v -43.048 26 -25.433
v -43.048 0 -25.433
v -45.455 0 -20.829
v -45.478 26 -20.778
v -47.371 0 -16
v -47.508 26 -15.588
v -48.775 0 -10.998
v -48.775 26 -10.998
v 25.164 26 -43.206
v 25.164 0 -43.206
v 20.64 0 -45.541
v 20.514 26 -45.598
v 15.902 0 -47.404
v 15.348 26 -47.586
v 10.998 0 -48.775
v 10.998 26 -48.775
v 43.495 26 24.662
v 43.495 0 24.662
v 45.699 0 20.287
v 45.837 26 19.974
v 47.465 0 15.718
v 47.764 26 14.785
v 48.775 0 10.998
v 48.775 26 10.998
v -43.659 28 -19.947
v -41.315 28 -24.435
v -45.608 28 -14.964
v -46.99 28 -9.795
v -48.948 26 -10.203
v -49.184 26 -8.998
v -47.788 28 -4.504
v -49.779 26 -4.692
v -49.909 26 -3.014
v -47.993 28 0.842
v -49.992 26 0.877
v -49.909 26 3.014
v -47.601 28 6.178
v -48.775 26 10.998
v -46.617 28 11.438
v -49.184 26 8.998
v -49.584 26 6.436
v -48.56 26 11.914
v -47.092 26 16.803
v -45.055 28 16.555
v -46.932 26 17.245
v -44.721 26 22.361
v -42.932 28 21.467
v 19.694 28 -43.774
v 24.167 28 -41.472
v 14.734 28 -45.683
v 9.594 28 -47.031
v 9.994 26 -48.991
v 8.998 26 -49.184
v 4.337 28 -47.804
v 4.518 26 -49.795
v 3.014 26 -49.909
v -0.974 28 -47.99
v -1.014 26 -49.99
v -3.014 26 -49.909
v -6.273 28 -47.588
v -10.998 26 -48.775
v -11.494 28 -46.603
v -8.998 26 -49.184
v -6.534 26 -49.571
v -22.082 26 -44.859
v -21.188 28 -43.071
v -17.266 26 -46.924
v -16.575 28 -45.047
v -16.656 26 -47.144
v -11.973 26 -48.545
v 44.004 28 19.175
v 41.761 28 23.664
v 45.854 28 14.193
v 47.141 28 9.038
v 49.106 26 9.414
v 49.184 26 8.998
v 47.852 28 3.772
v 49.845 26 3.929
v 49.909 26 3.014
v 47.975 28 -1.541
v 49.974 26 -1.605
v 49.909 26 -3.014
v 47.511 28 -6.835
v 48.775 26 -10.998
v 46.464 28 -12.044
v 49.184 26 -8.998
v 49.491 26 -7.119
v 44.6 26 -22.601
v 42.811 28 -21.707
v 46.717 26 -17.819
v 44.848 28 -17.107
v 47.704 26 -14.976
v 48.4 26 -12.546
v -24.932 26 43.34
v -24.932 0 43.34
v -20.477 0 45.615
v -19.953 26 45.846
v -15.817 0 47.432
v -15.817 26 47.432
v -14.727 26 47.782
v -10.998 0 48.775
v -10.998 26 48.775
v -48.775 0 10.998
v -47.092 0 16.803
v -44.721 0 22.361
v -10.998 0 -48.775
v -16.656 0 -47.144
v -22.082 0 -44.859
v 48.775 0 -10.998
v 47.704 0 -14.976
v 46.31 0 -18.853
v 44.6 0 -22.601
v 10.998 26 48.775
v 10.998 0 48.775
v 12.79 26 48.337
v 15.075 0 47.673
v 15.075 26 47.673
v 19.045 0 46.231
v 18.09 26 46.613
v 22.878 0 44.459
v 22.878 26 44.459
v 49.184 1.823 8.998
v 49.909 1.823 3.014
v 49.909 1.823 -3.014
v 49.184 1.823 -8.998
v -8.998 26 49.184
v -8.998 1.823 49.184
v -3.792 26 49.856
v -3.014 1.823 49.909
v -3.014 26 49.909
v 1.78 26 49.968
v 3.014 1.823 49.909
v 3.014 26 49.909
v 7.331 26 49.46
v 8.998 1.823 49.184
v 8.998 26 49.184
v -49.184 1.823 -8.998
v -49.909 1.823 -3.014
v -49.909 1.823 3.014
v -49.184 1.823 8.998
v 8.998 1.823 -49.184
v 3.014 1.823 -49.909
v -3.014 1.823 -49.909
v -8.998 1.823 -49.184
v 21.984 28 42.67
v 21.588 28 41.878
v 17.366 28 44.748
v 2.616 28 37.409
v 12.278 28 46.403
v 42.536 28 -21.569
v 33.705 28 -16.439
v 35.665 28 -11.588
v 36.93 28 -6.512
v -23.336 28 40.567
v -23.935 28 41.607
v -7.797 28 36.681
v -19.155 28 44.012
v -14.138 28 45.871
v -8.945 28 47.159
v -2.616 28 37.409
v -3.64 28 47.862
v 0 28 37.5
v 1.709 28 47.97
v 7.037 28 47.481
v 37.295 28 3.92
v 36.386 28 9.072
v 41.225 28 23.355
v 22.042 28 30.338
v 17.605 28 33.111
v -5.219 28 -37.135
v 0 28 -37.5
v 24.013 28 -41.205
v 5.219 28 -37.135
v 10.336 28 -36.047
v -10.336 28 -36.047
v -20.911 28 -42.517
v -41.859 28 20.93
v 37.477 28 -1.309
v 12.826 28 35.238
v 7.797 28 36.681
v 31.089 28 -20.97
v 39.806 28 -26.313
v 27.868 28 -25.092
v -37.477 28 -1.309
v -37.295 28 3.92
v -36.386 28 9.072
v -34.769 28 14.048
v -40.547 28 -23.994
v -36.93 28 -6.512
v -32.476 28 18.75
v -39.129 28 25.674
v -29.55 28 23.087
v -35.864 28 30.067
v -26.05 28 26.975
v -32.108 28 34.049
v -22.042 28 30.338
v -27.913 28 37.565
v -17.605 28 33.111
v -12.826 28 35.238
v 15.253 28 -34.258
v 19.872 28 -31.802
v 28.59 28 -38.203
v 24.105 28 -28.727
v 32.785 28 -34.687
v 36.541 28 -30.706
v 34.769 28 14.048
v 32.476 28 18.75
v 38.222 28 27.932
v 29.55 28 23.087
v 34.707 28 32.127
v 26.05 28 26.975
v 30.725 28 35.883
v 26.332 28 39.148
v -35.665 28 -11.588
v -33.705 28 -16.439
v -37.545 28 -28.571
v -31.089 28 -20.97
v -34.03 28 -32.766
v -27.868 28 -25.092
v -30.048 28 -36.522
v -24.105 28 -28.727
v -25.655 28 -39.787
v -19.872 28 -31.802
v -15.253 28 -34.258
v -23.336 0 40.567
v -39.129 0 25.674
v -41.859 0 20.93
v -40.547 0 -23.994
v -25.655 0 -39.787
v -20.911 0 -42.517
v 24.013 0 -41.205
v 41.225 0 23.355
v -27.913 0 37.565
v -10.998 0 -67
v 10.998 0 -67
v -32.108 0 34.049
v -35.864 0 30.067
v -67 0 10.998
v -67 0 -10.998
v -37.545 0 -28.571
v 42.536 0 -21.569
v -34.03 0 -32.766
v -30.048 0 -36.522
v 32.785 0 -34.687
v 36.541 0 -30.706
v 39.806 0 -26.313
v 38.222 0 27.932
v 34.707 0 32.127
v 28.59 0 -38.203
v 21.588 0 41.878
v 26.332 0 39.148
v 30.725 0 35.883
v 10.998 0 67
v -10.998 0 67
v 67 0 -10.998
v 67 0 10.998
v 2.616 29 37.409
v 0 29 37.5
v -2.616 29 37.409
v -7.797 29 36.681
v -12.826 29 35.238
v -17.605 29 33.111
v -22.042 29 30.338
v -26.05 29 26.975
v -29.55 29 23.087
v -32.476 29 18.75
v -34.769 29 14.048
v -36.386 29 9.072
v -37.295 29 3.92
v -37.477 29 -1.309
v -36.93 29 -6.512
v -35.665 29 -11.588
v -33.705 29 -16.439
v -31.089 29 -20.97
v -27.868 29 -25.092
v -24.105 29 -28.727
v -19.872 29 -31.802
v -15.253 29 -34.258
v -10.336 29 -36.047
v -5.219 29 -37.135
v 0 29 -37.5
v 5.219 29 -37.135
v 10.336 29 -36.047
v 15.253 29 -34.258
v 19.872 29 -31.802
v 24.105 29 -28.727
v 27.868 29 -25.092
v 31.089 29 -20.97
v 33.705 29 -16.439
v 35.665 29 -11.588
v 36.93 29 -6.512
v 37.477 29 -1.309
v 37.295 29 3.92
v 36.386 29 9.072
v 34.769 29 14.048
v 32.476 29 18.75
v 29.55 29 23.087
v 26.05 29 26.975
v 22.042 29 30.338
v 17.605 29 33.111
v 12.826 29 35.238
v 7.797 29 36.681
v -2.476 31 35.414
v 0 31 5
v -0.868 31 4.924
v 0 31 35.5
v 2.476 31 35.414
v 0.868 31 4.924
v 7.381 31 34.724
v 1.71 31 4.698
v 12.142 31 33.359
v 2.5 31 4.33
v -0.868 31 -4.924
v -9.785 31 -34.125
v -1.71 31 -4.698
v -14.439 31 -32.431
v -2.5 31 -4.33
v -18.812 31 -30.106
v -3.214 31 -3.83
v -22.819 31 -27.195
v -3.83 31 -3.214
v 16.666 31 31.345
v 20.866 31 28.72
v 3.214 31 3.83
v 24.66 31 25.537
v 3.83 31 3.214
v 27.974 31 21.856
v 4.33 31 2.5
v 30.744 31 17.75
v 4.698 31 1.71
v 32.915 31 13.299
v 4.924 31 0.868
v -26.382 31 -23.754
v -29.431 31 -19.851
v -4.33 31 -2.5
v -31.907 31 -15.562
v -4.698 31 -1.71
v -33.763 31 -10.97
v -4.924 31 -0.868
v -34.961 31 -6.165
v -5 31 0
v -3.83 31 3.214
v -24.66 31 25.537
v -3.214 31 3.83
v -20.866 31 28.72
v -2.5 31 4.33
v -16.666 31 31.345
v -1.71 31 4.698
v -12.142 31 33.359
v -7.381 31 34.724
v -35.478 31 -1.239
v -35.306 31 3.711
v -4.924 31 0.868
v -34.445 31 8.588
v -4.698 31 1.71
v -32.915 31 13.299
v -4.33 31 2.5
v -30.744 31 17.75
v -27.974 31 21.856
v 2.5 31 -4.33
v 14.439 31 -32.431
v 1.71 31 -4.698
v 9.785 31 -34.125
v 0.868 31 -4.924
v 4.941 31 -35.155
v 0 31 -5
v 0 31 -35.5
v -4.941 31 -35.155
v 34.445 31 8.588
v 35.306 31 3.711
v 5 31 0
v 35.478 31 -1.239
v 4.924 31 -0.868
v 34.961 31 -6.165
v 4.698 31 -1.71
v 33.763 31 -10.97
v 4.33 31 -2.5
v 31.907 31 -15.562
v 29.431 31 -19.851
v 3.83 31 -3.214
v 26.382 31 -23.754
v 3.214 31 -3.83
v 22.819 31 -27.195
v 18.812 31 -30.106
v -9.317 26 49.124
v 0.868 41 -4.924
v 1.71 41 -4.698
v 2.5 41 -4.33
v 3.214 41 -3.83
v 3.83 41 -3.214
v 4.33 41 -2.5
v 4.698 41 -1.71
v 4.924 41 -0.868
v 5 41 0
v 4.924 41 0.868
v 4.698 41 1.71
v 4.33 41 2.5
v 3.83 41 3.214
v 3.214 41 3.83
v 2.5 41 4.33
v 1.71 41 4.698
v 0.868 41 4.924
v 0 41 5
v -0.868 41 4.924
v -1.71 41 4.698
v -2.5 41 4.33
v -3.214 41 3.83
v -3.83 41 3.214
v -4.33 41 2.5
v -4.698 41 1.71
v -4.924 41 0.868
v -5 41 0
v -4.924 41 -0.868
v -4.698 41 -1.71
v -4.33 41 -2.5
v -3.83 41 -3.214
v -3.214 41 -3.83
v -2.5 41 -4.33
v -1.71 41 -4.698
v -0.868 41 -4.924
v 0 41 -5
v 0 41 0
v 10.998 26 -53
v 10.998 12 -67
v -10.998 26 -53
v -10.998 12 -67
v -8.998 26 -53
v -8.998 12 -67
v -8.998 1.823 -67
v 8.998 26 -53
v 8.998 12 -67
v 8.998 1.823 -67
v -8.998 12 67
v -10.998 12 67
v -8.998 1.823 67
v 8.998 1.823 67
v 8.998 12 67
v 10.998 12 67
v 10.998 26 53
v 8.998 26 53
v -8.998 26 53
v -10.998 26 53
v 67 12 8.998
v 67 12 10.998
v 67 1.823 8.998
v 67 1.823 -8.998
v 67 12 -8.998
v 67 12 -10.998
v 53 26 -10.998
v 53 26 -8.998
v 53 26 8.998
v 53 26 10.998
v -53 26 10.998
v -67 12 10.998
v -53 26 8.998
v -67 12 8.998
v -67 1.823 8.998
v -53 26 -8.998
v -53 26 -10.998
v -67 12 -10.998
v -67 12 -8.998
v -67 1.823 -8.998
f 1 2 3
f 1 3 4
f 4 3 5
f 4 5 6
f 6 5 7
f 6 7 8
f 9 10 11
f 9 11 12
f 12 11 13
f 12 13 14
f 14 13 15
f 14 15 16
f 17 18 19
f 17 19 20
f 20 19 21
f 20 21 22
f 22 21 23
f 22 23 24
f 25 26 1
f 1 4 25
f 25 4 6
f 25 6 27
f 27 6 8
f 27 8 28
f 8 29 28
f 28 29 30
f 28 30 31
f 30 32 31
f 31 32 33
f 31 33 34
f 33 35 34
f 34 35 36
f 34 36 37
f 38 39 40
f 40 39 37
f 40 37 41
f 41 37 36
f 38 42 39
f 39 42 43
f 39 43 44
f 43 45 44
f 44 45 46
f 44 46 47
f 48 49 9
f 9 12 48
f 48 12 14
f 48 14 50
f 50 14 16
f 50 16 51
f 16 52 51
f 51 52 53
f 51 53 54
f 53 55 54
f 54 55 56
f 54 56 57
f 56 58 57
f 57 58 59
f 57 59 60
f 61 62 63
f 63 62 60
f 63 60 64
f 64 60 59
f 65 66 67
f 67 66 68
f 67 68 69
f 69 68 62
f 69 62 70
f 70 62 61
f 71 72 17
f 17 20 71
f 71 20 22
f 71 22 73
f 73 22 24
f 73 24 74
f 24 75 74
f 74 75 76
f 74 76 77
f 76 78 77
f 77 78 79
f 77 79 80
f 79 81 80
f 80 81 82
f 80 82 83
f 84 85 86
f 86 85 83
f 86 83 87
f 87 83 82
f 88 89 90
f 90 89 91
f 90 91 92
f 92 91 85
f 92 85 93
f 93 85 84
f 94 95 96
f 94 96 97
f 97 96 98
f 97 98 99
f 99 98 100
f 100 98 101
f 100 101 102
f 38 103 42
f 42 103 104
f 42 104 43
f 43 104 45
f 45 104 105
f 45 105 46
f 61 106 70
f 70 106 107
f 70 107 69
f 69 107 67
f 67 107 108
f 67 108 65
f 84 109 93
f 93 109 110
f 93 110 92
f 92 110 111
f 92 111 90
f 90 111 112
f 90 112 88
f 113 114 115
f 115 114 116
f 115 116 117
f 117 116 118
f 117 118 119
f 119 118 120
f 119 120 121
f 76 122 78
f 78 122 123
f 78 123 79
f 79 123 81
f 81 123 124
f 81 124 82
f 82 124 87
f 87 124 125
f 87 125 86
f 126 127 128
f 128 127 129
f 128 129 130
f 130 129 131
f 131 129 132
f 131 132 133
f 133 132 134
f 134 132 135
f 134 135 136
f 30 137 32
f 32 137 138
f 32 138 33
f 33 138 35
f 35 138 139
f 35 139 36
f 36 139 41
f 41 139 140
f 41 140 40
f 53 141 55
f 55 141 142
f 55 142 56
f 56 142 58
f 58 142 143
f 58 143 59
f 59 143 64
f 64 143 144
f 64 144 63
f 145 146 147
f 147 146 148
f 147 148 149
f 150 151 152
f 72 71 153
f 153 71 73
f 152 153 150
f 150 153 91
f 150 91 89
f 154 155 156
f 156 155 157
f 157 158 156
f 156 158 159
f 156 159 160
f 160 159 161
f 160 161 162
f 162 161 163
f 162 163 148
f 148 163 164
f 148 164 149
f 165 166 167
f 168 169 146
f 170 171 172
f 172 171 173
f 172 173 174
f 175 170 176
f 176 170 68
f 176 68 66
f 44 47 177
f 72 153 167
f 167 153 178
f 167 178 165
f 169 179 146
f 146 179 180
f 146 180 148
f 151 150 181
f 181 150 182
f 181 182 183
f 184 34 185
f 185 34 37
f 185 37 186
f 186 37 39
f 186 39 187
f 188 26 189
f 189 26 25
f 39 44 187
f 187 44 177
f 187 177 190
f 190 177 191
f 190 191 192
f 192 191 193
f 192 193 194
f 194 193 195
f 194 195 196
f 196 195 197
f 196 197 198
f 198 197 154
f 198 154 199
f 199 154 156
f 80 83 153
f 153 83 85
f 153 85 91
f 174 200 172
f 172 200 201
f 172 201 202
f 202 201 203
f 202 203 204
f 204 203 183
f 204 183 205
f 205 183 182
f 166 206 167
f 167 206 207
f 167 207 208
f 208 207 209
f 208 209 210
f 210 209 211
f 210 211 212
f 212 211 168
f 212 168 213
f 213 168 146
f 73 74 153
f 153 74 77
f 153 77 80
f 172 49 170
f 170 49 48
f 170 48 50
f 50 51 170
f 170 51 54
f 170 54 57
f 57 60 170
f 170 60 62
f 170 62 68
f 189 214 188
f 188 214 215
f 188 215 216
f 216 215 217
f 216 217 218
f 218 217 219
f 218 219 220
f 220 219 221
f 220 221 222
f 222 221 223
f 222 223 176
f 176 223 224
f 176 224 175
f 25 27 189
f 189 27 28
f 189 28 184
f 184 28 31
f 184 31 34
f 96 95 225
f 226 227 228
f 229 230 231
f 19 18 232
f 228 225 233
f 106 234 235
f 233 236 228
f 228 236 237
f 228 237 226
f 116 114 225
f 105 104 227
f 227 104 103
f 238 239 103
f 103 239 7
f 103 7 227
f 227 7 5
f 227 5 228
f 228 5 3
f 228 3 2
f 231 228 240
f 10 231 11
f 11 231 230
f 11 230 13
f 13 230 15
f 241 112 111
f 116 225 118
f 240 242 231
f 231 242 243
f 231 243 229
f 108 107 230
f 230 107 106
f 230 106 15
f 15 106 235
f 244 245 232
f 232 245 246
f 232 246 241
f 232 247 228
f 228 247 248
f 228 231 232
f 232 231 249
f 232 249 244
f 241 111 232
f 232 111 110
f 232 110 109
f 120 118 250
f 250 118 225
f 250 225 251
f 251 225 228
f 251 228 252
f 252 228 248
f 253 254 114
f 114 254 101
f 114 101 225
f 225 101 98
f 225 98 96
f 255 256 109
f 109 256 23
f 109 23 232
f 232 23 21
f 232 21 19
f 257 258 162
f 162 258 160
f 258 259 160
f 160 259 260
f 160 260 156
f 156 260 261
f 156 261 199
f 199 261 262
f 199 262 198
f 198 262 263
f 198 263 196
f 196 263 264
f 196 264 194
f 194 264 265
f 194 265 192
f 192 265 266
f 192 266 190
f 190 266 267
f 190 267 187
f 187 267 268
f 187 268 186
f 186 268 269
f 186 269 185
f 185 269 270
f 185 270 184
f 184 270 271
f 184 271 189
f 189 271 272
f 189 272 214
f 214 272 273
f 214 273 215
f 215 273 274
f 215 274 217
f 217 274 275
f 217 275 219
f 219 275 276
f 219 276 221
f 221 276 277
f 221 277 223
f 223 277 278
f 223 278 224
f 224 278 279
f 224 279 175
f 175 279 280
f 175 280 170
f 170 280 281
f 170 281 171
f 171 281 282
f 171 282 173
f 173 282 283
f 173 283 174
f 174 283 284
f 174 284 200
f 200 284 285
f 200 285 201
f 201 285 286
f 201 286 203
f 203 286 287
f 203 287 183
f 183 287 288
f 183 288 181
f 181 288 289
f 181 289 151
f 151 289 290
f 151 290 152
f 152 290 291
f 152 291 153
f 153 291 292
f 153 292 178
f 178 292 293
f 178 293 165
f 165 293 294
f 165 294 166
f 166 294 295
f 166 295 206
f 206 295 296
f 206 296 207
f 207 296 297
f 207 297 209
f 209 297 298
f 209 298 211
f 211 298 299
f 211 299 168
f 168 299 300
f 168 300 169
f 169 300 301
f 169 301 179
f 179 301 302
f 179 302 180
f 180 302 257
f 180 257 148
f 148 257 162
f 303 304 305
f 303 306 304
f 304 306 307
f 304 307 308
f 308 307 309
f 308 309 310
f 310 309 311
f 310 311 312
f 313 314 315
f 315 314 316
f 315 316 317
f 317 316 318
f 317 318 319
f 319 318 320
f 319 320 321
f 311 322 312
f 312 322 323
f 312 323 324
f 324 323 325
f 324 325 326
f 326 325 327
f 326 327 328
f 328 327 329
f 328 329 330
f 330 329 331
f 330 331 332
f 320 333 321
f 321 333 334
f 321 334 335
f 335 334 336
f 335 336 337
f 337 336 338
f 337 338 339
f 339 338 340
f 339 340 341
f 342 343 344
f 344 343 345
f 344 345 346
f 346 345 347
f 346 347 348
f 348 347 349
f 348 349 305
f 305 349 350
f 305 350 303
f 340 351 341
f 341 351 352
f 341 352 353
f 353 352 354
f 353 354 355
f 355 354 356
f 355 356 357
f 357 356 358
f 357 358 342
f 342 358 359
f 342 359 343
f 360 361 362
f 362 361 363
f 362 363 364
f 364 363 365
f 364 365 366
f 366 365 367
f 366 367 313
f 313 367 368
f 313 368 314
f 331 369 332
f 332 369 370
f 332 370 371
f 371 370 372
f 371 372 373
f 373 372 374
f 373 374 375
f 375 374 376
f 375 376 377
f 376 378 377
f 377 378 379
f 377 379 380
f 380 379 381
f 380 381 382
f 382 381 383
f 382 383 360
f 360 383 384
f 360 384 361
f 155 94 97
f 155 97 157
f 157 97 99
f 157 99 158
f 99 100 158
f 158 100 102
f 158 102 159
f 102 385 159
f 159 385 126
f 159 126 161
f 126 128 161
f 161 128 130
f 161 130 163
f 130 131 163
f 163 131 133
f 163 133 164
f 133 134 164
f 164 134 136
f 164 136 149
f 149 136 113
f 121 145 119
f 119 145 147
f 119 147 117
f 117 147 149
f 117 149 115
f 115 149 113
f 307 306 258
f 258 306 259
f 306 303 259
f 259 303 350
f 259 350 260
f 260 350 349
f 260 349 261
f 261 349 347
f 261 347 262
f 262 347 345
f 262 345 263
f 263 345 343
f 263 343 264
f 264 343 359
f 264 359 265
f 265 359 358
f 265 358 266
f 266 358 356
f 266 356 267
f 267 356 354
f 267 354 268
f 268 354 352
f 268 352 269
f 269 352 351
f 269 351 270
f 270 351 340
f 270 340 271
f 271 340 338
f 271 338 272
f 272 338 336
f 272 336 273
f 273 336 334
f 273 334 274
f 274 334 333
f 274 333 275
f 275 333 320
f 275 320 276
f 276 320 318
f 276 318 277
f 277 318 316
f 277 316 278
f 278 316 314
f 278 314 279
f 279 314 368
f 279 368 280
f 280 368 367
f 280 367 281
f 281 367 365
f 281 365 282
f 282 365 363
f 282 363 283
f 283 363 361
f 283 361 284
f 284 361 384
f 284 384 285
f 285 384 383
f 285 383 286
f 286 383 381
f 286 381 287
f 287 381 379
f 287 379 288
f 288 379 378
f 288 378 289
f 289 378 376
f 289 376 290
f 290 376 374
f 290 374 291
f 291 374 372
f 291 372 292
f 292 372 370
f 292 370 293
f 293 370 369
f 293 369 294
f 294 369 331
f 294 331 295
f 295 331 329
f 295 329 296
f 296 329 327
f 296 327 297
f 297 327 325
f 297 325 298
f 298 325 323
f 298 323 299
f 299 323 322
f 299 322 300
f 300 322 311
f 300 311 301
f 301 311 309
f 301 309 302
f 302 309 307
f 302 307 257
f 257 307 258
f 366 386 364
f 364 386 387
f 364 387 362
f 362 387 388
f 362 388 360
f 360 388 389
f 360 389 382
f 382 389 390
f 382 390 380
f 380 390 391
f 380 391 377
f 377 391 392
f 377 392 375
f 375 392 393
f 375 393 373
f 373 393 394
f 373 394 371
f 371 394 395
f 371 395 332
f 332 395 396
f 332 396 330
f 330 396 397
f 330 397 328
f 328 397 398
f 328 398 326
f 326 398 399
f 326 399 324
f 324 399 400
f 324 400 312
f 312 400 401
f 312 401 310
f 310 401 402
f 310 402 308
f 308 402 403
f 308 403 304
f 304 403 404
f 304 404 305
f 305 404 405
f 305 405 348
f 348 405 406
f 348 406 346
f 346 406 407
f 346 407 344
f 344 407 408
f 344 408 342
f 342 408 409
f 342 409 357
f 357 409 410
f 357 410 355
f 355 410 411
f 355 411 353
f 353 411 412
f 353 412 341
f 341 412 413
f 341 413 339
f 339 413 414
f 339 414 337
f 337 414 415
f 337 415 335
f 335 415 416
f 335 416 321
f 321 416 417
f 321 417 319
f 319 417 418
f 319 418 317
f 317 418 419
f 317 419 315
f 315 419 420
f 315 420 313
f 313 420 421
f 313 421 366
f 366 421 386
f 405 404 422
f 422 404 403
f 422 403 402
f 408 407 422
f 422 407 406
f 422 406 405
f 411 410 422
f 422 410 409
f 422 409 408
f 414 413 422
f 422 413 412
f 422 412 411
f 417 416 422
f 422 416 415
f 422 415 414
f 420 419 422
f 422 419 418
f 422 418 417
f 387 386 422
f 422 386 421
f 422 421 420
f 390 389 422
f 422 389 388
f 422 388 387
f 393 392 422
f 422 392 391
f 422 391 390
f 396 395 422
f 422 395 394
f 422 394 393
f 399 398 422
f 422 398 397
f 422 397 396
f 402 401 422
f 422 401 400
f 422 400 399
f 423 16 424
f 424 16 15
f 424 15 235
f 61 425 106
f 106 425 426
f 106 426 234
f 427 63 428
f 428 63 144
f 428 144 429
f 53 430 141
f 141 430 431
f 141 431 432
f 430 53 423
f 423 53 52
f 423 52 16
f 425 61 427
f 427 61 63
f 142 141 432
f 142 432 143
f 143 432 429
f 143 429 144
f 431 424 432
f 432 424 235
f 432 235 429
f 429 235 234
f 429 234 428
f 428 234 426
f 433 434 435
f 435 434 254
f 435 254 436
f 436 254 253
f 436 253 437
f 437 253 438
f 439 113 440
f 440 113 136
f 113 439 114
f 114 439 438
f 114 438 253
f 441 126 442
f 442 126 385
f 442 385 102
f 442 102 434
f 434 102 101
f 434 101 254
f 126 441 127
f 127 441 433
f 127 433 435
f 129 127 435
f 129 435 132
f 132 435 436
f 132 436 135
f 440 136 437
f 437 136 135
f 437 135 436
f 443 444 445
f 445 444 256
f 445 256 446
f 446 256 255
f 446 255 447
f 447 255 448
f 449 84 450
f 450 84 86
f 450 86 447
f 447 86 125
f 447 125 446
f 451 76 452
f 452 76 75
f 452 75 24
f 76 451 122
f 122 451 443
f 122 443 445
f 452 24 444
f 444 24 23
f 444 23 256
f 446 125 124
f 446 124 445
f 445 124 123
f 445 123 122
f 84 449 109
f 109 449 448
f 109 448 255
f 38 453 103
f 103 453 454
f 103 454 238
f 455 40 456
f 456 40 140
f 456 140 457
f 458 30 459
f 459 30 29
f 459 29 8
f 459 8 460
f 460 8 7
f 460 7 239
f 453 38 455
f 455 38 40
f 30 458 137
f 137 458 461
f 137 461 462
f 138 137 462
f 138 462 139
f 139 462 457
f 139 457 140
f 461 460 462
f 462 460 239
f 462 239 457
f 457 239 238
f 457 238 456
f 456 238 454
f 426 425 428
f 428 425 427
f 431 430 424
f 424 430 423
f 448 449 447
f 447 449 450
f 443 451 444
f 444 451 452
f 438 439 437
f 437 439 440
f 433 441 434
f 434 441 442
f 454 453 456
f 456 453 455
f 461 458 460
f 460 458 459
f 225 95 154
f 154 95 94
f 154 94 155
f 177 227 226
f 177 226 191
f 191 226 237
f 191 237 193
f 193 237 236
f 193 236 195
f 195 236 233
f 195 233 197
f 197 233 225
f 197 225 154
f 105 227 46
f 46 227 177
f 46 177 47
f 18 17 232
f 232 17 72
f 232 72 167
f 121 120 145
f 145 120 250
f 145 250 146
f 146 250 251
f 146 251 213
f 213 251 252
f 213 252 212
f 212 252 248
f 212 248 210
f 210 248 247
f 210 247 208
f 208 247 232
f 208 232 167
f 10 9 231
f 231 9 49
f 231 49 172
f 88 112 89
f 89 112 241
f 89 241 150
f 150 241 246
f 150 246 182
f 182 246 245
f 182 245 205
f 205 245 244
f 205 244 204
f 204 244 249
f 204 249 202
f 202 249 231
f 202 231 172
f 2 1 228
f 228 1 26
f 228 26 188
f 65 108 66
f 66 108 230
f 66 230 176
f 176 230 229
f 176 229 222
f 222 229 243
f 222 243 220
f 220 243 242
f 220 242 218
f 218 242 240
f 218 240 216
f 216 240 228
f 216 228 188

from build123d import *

# Parameters (mm, degrees)
SKETCH1_R           = 50
BOSS_EXTRUDE1_DEPTH = 28
SKETCH2_R           = 37.5
BOSS_EXTRUDE2_DEPTH = 3
CHAMFER1_SIZE       = 2
SKETCH3_R           = 5
BOSS_EXTRUDE3_DEPTH = 10
BOSS_EXTRUDE4_DEPTH = 67
CIRPATTERN6_COUNT   = 4
CHAMFER2_SIZE       = 14
CUT_EXTRUDE1_DEPTH  = 67
CIRPATTERN7_COUNT   = 4


with BuildPart() as part:
    # Sketch1 → Boss-Extrude1 (new body)
    with BuildSketch(Plane(origin=(0, 0, 0), x_dir=(1, 0, 0), z_dir=(0, 1, 0))):
        with Locations(Location((0, 0, 0), (0, 0, 270))):
            Circle(SKETCH1_R)
    extrude(amount=BOSS_EXTRUDE1_DEPTH)

    # Sketch2 → Boss-Extrude2 (add)
    with BuildSketch(Plane(origin=(0, 28, 0), x_dir=(1, 0, 0), z_dir=(0, 1, 0))):
        with Locations(Location((0, 0, 0), (0, 0, 270))):
            Circle(SKETCH2_R)
    extrude(amount=BOSS_EXTRUDE2_DEPTH)

    # Chamfer1
    chamfer1_edges = [part.edges().sort_by_distance(p)[0] for p in [
        (0, 28, -50),
        (0, 31, -37.5),
    ]]
    chamfer(chamfer1_edges, length=CHAMFER1_SIZE)

    # Sketch3 → Boss-Extrude3 (add)
    with BuildSketch(Plane(origin=(0, 31, 0), x_dir=(1, 0, 0), z_dir=(0, 1, 0))):
        with Locations(Location((0, 0, 0), (0, 0, 270))):
            Circle(SKETCH3_R)
    extrude(amount=BOSS_EXTRUDE3_DEPTH)

    # Sketch4 → Boss-Extrude4 (add)
    with BuildSketch(Plane.XY):
        Polygon((-8.998295996, 1.823065443), (8.998295996, 1.823065443), (8.998295996, 26), (10.998295996, 26), (10.998295996, 0), (-10.998295996, 0), (-10.998295996, 26), (-8.998295996, 26), align=None)
    boss_extrude4 = extrude(amount=-BOSS_EXTRUDE4_DEPTH)

    # CirPattern6: Boss-Extrude4 ×4 about axis
    cirpattern6_axis = Axis((0, 0, 0), (0, 1, 0))
    for i in range(1, CIRPATTERN6_COUNT):
        add(boss_extrude4.rotate(cirpattern6_axis, i * 360 / CIRPATTERN6_COUNT))

    # Chamfer2
    chamfer2_edges = [part.edges().sort_by_distance(p)[0] for p in [
        (9.998295996, 26, -67),
        (-9.998295996, 26, -67),
        (-67, 26, -9.998295996),
        (-9.998295996, 26, 67),
        (-67, 26, 9.998295996),
        (67, 26, 9.998295996),
        (67, 26, -9.998295996),
        (9.998295996, 26, 67),
    ]]
    chamfer(chamfer2_edges, length=CHAMFER2_SIZE)

    # Sketch10 → Cut-Extrude1 (cut)
    with BuildSketch(Plane(origin=(0, 0, 0), x_dir=(-1, 0, 0), z_dir=(0, -1, 0))):
        with BuildLine():
            Line((24.931942454, -43.340491985), (23.336298137, -40.566700498))
            ThreePointArc((23.336298137, -40.566700498), (34.044117933, -32.112895139), (41.858905353, -20.930170631))
            Line((41.858905353, -20.930170631), (44.721052728, -22.361293409))
            ThreePointArc((44.721052728, -22.361293409), (36.371920868, -34.308648652), (24.931942454, -43.340491985))
        make_face()
    cut_extrude1 = extrude(amount=-CUT_EXTRUDE1_DEPTH, mode=Mode.SUBTRACT)

    # CirPattern7: Cut-Extrude1 ×4 about axis
    cirpattern7_axis = Axis((0.338512389, 0, -0.319309576), (0, 1, 0))
    for i in range(1, CIRPATTERN7_COUNT):
        add(cut_extrude1.rotate(cirpattern7_axis, i * 360 / CIRPATTERN7_COUNT), mode=Mode.SUBTRACT)


solid = part.part
